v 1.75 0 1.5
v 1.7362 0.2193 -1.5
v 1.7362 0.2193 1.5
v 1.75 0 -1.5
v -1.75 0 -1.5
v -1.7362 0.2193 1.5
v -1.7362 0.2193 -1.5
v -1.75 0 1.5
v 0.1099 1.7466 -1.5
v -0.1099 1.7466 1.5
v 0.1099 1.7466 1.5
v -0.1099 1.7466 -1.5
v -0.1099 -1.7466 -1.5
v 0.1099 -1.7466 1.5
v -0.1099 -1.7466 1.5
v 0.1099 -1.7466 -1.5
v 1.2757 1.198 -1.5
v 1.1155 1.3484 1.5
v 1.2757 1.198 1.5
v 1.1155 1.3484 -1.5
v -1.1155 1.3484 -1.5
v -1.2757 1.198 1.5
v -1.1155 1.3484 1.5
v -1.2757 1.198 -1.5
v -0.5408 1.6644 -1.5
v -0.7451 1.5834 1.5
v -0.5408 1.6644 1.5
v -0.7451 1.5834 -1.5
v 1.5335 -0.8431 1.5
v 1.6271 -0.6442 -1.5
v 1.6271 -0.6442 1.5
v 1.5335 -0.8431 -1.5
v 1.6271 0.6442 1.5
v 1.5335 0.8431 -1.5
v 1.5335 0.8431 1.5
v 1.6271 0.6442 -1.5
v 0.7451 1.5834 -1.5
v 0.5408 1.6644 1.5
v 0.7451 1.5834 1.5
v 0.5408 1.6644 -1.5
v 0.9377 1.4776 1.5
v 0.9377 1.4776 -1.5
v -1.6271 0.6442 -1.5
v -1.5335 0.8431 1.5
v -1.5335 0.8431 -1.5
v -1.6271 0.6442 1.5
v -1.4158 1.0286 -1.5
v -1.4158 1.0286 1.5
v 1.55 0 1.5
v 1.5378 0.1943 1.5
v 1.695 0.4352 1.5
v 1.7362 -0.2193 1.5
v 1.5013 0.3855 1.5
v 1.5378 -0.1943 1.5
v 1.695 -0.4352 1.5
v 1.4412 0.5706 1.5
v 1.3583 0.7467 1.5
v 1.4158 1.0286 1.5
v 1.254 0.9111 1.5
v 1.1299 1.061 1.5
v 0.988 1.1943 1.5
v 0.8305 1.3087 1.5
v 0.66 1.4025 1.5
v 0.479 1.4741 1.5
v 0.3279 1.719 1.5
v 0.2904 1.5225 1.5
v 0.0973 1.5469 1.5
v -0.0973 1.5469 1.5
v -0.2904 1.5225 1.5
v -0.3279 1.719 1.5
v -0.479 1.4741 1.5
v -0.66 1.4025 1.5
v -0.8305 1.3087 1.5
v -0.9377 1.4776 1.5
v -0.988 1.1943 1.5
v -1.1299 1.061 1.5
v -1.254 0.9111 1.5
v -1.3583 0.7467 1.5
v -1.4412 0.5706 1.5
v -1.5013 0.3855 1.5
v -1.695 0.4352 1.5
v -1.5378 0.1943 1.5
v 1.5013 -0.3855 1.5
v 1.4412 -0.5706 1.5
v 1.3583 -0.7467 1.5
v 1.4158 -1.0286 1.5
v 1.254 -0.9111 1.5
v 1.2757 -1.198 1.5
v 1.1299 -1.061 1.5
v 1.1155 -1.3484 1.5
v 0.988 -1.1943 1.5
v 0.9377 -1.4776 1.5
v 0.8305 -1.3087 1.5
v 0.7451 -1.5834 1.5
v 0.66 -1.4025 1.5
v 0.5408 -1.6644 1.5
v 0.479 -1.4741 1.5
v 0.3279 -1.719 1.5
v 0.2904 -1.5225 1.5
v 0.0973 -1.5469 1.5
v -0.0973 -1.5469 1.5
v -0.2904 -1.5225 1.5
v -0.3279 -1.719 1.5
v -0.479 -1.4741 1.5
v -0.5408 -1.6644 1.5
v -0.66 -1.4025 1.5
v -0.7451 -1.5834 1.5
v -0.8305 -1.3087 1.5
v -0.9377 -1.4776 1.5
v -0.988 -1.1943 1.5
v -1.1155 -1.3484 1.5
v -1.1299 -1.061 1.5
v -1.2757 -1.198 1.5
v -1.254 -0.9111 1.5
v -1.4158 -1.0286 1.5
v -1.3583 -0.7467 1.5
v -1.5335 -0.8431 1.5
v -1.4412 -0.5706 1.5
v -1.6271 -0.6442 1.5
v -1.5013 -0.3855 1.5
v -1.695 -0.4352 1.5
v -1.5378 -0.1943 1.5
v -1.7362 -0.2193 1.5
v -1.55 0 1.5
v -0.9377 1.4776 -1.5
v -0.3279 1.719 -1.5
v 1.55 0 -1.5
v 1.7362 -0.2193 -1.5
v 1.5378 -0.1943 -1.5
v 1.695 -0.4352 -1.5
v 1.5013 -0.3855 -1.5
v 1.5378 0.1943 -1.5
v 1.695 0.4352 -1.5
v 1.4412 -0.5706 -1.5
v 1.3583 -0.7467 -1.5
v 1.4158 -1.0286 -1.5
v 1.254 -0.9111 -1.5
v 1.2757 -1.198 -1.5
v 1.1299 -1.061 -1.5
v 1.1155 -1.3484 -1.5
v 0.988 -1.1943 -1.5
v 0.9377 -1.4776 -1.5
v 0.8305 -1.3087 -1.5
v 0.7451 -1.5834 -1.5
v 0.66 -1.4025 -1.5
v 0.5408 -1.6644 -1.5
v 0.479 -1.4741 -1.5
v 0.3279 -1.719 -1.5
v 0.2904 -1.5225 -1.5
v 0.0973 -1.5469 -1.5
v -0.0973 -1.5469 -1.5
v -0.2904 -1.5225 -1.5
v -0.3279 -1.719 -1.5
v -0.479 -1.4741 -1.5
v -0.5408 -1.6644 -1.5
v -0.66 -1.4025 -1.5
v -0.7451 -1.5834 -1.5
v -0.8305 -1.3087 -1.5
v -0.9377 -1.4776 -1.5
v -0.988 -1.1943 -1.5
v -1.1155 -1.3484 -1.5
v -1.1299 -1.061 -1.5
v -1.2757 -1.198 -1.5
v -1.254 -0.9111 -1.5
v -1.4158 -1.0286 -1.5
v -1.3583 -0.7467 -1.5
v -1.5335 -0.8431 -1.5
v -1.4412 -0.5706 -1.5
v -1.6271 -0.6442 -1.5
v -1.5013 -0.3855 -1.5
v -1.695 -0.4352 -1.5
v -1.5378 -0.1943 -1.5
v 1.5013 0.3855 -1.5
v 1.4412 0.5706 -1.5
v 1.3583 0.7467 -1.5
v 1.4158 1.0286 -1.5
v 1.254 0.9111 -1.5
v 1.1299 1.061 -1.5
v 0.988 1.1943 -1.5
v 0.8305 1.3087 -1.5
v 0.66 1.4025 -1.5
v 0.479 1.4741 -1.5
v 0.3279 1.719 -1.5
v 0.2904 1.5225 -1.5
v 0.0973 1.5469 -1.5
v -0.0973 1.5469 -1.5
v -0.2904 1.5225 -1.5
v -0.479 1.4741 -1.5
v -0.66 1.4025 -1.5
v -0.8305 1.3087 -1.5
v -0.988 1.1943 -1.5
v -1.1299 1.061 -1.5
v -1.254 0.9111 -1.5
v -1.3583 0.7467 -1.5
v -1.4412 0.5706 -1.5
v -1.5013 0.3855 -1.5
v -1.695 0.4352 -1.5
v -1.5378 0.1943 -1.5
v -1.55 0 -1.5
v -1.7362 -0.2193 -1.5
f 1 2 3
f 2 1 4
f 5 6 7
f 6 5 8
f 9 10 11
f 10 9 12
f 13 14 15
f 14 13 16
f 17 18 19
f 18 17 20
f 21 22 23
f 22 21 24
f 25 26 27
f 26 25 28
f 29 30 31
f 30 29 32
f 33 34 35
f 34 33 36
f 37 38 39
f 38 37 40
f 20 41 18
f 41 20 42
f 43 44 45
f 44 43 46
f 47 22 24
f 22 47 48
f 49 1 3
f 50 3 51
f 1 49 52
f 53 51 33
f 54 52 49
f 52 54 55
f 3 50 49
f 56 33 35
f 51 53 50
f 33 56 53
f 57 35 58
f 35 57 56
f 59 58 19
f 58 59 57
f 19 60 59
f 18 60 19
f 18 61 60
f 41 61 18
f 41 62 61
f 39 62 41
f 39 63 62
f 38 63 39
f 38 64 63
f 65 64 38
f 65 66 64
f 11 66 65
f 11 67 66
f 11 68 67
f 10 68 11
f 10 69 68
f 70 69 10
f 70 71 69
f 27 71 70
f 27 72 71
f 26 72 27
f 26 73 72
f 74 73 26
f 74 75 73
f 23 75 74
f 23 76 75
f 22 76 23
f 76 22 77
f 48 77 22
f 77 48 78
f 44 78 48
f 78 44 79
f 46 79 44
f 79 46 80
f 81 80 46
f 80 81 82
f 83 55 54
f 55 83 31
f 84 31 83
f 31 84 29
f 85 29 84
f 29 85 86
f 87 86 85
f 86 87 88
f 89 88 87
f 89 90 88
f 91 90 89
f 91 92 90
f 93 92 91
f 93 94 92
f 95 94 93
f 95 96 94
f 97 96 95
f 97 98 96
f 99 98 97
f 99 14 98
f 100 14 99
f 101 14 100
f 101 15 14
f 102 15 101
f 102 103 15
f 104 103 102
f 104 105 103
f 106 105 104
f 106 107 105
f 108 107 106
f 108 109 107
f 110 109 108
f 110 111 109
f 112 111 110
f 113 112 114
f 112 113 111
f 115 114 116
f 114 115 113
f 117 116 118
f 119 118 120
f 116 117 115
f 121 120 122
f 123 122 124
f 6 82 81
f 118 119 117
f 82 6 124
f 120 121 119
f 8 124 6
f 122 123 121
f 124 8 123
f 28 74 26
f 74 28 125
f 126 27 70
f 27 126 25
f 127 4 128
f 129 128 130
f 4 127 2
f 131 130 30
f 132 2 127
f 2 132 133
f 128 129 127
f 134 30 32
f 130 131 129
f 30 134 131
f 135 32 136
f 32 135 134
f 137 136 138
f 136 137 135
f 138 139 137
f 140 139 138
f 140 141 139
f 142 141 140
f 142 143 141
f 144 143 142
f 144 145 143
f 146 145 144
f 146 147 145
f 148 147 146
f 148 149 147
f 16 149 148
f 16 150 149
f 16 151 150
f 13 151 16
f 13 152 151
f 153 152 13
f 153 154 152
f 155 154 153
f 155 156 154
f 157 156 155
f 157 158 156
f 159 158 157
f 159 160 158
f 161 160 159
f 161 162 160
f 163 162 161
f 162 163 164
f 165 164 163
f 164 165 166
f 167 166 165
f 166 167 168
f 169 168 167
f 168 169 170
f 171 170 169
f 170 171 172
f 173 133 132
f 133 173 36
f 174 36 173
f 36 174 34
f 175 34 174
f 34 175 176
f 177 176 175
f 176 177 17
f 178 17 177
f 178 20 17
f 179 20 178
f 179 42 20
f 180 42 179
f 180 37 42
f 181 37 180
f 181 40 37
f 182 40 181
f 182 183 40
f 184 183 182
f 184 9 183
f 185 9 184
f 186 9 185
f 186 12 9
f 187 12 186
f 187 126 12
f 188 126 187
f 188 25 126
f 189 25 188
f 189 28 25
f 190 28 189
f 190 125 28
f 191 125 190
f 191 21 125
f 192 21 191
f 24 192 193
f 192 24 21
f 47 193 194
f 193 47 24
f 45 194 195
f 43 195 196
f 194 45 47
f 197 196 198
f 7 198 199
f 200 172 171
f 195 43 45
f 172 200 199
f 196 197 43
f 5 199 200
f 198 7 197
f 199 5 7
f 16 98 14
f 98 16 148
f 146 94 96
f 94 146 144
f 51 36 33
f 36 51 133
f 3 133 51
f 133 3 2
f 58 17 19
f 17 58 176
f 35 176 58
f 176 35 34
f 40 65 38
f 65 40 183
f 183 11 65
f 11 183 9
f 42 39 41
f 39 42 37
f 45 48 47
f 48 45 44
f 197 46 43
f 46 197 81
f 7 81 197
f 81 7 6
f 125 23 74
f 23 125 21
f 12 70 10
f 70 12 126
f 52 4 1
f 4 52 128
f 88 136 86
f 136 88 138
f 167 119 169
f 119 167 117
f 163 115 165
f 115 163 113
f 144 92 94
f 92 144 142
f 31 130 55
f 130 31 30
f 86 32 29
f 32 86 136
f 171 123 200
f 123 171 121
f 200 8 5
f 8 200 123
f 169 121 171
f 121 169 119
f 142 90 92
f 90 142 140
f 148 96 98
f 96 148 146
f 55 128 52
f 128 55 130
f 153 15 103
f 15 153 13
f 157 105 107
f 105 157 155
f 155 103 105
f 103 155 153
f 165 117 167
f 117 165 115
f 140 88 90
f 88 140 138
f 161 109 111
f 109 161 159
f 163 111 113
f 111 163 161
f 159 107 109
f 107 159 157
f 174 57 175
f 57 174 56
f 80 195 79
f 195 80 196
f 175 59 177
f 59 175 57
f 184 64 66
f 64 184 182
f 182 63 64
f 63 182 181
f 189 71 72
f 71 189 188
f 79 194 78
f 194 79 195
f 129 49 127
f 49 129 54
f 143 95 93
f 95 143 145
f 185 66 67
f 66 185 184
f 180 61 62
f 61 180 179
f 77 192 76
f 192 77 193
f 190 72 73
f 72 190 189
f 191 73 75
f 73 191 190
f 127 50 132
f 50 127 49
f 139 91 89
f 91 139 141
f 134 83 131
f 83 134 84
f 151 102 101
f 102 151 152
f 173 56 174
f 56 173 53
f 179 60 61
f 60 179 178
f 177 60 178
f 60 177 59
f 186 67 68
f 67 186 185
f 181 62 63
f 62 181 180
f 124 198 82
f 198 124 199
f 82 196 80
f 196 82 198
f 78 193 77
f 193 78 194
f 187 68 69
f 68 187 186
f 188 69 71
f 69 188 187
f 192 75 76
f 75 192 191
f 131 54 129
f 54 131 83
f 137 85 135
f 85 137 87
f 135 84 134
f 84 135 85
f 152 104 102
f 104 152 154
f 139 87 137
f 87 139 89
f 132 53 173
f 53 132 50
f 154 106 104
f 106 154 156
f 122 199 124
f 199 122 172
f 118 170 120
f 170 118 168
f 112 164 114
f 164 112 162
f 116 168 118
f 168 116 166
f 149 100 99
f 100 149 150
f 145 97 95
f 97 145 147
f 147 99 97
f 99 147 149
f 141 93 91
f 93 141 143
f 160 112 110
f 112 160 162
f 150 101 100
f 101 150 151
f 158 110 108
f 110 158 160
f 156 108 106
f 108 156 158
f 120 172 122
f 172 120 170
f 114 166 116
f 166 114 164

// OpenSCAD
$fn = 50;


difference() {
	union() {
		translate(v = [0, 0, -1.5000000000]) {
			cylinder(h = 3, r = 1.7500000000);
		}
	}
	union() {
		translate(v = [0, 0, -100.0000000000]) {
			cylinder(h = 200, r = 1.5500000000);
		}
	}
}
